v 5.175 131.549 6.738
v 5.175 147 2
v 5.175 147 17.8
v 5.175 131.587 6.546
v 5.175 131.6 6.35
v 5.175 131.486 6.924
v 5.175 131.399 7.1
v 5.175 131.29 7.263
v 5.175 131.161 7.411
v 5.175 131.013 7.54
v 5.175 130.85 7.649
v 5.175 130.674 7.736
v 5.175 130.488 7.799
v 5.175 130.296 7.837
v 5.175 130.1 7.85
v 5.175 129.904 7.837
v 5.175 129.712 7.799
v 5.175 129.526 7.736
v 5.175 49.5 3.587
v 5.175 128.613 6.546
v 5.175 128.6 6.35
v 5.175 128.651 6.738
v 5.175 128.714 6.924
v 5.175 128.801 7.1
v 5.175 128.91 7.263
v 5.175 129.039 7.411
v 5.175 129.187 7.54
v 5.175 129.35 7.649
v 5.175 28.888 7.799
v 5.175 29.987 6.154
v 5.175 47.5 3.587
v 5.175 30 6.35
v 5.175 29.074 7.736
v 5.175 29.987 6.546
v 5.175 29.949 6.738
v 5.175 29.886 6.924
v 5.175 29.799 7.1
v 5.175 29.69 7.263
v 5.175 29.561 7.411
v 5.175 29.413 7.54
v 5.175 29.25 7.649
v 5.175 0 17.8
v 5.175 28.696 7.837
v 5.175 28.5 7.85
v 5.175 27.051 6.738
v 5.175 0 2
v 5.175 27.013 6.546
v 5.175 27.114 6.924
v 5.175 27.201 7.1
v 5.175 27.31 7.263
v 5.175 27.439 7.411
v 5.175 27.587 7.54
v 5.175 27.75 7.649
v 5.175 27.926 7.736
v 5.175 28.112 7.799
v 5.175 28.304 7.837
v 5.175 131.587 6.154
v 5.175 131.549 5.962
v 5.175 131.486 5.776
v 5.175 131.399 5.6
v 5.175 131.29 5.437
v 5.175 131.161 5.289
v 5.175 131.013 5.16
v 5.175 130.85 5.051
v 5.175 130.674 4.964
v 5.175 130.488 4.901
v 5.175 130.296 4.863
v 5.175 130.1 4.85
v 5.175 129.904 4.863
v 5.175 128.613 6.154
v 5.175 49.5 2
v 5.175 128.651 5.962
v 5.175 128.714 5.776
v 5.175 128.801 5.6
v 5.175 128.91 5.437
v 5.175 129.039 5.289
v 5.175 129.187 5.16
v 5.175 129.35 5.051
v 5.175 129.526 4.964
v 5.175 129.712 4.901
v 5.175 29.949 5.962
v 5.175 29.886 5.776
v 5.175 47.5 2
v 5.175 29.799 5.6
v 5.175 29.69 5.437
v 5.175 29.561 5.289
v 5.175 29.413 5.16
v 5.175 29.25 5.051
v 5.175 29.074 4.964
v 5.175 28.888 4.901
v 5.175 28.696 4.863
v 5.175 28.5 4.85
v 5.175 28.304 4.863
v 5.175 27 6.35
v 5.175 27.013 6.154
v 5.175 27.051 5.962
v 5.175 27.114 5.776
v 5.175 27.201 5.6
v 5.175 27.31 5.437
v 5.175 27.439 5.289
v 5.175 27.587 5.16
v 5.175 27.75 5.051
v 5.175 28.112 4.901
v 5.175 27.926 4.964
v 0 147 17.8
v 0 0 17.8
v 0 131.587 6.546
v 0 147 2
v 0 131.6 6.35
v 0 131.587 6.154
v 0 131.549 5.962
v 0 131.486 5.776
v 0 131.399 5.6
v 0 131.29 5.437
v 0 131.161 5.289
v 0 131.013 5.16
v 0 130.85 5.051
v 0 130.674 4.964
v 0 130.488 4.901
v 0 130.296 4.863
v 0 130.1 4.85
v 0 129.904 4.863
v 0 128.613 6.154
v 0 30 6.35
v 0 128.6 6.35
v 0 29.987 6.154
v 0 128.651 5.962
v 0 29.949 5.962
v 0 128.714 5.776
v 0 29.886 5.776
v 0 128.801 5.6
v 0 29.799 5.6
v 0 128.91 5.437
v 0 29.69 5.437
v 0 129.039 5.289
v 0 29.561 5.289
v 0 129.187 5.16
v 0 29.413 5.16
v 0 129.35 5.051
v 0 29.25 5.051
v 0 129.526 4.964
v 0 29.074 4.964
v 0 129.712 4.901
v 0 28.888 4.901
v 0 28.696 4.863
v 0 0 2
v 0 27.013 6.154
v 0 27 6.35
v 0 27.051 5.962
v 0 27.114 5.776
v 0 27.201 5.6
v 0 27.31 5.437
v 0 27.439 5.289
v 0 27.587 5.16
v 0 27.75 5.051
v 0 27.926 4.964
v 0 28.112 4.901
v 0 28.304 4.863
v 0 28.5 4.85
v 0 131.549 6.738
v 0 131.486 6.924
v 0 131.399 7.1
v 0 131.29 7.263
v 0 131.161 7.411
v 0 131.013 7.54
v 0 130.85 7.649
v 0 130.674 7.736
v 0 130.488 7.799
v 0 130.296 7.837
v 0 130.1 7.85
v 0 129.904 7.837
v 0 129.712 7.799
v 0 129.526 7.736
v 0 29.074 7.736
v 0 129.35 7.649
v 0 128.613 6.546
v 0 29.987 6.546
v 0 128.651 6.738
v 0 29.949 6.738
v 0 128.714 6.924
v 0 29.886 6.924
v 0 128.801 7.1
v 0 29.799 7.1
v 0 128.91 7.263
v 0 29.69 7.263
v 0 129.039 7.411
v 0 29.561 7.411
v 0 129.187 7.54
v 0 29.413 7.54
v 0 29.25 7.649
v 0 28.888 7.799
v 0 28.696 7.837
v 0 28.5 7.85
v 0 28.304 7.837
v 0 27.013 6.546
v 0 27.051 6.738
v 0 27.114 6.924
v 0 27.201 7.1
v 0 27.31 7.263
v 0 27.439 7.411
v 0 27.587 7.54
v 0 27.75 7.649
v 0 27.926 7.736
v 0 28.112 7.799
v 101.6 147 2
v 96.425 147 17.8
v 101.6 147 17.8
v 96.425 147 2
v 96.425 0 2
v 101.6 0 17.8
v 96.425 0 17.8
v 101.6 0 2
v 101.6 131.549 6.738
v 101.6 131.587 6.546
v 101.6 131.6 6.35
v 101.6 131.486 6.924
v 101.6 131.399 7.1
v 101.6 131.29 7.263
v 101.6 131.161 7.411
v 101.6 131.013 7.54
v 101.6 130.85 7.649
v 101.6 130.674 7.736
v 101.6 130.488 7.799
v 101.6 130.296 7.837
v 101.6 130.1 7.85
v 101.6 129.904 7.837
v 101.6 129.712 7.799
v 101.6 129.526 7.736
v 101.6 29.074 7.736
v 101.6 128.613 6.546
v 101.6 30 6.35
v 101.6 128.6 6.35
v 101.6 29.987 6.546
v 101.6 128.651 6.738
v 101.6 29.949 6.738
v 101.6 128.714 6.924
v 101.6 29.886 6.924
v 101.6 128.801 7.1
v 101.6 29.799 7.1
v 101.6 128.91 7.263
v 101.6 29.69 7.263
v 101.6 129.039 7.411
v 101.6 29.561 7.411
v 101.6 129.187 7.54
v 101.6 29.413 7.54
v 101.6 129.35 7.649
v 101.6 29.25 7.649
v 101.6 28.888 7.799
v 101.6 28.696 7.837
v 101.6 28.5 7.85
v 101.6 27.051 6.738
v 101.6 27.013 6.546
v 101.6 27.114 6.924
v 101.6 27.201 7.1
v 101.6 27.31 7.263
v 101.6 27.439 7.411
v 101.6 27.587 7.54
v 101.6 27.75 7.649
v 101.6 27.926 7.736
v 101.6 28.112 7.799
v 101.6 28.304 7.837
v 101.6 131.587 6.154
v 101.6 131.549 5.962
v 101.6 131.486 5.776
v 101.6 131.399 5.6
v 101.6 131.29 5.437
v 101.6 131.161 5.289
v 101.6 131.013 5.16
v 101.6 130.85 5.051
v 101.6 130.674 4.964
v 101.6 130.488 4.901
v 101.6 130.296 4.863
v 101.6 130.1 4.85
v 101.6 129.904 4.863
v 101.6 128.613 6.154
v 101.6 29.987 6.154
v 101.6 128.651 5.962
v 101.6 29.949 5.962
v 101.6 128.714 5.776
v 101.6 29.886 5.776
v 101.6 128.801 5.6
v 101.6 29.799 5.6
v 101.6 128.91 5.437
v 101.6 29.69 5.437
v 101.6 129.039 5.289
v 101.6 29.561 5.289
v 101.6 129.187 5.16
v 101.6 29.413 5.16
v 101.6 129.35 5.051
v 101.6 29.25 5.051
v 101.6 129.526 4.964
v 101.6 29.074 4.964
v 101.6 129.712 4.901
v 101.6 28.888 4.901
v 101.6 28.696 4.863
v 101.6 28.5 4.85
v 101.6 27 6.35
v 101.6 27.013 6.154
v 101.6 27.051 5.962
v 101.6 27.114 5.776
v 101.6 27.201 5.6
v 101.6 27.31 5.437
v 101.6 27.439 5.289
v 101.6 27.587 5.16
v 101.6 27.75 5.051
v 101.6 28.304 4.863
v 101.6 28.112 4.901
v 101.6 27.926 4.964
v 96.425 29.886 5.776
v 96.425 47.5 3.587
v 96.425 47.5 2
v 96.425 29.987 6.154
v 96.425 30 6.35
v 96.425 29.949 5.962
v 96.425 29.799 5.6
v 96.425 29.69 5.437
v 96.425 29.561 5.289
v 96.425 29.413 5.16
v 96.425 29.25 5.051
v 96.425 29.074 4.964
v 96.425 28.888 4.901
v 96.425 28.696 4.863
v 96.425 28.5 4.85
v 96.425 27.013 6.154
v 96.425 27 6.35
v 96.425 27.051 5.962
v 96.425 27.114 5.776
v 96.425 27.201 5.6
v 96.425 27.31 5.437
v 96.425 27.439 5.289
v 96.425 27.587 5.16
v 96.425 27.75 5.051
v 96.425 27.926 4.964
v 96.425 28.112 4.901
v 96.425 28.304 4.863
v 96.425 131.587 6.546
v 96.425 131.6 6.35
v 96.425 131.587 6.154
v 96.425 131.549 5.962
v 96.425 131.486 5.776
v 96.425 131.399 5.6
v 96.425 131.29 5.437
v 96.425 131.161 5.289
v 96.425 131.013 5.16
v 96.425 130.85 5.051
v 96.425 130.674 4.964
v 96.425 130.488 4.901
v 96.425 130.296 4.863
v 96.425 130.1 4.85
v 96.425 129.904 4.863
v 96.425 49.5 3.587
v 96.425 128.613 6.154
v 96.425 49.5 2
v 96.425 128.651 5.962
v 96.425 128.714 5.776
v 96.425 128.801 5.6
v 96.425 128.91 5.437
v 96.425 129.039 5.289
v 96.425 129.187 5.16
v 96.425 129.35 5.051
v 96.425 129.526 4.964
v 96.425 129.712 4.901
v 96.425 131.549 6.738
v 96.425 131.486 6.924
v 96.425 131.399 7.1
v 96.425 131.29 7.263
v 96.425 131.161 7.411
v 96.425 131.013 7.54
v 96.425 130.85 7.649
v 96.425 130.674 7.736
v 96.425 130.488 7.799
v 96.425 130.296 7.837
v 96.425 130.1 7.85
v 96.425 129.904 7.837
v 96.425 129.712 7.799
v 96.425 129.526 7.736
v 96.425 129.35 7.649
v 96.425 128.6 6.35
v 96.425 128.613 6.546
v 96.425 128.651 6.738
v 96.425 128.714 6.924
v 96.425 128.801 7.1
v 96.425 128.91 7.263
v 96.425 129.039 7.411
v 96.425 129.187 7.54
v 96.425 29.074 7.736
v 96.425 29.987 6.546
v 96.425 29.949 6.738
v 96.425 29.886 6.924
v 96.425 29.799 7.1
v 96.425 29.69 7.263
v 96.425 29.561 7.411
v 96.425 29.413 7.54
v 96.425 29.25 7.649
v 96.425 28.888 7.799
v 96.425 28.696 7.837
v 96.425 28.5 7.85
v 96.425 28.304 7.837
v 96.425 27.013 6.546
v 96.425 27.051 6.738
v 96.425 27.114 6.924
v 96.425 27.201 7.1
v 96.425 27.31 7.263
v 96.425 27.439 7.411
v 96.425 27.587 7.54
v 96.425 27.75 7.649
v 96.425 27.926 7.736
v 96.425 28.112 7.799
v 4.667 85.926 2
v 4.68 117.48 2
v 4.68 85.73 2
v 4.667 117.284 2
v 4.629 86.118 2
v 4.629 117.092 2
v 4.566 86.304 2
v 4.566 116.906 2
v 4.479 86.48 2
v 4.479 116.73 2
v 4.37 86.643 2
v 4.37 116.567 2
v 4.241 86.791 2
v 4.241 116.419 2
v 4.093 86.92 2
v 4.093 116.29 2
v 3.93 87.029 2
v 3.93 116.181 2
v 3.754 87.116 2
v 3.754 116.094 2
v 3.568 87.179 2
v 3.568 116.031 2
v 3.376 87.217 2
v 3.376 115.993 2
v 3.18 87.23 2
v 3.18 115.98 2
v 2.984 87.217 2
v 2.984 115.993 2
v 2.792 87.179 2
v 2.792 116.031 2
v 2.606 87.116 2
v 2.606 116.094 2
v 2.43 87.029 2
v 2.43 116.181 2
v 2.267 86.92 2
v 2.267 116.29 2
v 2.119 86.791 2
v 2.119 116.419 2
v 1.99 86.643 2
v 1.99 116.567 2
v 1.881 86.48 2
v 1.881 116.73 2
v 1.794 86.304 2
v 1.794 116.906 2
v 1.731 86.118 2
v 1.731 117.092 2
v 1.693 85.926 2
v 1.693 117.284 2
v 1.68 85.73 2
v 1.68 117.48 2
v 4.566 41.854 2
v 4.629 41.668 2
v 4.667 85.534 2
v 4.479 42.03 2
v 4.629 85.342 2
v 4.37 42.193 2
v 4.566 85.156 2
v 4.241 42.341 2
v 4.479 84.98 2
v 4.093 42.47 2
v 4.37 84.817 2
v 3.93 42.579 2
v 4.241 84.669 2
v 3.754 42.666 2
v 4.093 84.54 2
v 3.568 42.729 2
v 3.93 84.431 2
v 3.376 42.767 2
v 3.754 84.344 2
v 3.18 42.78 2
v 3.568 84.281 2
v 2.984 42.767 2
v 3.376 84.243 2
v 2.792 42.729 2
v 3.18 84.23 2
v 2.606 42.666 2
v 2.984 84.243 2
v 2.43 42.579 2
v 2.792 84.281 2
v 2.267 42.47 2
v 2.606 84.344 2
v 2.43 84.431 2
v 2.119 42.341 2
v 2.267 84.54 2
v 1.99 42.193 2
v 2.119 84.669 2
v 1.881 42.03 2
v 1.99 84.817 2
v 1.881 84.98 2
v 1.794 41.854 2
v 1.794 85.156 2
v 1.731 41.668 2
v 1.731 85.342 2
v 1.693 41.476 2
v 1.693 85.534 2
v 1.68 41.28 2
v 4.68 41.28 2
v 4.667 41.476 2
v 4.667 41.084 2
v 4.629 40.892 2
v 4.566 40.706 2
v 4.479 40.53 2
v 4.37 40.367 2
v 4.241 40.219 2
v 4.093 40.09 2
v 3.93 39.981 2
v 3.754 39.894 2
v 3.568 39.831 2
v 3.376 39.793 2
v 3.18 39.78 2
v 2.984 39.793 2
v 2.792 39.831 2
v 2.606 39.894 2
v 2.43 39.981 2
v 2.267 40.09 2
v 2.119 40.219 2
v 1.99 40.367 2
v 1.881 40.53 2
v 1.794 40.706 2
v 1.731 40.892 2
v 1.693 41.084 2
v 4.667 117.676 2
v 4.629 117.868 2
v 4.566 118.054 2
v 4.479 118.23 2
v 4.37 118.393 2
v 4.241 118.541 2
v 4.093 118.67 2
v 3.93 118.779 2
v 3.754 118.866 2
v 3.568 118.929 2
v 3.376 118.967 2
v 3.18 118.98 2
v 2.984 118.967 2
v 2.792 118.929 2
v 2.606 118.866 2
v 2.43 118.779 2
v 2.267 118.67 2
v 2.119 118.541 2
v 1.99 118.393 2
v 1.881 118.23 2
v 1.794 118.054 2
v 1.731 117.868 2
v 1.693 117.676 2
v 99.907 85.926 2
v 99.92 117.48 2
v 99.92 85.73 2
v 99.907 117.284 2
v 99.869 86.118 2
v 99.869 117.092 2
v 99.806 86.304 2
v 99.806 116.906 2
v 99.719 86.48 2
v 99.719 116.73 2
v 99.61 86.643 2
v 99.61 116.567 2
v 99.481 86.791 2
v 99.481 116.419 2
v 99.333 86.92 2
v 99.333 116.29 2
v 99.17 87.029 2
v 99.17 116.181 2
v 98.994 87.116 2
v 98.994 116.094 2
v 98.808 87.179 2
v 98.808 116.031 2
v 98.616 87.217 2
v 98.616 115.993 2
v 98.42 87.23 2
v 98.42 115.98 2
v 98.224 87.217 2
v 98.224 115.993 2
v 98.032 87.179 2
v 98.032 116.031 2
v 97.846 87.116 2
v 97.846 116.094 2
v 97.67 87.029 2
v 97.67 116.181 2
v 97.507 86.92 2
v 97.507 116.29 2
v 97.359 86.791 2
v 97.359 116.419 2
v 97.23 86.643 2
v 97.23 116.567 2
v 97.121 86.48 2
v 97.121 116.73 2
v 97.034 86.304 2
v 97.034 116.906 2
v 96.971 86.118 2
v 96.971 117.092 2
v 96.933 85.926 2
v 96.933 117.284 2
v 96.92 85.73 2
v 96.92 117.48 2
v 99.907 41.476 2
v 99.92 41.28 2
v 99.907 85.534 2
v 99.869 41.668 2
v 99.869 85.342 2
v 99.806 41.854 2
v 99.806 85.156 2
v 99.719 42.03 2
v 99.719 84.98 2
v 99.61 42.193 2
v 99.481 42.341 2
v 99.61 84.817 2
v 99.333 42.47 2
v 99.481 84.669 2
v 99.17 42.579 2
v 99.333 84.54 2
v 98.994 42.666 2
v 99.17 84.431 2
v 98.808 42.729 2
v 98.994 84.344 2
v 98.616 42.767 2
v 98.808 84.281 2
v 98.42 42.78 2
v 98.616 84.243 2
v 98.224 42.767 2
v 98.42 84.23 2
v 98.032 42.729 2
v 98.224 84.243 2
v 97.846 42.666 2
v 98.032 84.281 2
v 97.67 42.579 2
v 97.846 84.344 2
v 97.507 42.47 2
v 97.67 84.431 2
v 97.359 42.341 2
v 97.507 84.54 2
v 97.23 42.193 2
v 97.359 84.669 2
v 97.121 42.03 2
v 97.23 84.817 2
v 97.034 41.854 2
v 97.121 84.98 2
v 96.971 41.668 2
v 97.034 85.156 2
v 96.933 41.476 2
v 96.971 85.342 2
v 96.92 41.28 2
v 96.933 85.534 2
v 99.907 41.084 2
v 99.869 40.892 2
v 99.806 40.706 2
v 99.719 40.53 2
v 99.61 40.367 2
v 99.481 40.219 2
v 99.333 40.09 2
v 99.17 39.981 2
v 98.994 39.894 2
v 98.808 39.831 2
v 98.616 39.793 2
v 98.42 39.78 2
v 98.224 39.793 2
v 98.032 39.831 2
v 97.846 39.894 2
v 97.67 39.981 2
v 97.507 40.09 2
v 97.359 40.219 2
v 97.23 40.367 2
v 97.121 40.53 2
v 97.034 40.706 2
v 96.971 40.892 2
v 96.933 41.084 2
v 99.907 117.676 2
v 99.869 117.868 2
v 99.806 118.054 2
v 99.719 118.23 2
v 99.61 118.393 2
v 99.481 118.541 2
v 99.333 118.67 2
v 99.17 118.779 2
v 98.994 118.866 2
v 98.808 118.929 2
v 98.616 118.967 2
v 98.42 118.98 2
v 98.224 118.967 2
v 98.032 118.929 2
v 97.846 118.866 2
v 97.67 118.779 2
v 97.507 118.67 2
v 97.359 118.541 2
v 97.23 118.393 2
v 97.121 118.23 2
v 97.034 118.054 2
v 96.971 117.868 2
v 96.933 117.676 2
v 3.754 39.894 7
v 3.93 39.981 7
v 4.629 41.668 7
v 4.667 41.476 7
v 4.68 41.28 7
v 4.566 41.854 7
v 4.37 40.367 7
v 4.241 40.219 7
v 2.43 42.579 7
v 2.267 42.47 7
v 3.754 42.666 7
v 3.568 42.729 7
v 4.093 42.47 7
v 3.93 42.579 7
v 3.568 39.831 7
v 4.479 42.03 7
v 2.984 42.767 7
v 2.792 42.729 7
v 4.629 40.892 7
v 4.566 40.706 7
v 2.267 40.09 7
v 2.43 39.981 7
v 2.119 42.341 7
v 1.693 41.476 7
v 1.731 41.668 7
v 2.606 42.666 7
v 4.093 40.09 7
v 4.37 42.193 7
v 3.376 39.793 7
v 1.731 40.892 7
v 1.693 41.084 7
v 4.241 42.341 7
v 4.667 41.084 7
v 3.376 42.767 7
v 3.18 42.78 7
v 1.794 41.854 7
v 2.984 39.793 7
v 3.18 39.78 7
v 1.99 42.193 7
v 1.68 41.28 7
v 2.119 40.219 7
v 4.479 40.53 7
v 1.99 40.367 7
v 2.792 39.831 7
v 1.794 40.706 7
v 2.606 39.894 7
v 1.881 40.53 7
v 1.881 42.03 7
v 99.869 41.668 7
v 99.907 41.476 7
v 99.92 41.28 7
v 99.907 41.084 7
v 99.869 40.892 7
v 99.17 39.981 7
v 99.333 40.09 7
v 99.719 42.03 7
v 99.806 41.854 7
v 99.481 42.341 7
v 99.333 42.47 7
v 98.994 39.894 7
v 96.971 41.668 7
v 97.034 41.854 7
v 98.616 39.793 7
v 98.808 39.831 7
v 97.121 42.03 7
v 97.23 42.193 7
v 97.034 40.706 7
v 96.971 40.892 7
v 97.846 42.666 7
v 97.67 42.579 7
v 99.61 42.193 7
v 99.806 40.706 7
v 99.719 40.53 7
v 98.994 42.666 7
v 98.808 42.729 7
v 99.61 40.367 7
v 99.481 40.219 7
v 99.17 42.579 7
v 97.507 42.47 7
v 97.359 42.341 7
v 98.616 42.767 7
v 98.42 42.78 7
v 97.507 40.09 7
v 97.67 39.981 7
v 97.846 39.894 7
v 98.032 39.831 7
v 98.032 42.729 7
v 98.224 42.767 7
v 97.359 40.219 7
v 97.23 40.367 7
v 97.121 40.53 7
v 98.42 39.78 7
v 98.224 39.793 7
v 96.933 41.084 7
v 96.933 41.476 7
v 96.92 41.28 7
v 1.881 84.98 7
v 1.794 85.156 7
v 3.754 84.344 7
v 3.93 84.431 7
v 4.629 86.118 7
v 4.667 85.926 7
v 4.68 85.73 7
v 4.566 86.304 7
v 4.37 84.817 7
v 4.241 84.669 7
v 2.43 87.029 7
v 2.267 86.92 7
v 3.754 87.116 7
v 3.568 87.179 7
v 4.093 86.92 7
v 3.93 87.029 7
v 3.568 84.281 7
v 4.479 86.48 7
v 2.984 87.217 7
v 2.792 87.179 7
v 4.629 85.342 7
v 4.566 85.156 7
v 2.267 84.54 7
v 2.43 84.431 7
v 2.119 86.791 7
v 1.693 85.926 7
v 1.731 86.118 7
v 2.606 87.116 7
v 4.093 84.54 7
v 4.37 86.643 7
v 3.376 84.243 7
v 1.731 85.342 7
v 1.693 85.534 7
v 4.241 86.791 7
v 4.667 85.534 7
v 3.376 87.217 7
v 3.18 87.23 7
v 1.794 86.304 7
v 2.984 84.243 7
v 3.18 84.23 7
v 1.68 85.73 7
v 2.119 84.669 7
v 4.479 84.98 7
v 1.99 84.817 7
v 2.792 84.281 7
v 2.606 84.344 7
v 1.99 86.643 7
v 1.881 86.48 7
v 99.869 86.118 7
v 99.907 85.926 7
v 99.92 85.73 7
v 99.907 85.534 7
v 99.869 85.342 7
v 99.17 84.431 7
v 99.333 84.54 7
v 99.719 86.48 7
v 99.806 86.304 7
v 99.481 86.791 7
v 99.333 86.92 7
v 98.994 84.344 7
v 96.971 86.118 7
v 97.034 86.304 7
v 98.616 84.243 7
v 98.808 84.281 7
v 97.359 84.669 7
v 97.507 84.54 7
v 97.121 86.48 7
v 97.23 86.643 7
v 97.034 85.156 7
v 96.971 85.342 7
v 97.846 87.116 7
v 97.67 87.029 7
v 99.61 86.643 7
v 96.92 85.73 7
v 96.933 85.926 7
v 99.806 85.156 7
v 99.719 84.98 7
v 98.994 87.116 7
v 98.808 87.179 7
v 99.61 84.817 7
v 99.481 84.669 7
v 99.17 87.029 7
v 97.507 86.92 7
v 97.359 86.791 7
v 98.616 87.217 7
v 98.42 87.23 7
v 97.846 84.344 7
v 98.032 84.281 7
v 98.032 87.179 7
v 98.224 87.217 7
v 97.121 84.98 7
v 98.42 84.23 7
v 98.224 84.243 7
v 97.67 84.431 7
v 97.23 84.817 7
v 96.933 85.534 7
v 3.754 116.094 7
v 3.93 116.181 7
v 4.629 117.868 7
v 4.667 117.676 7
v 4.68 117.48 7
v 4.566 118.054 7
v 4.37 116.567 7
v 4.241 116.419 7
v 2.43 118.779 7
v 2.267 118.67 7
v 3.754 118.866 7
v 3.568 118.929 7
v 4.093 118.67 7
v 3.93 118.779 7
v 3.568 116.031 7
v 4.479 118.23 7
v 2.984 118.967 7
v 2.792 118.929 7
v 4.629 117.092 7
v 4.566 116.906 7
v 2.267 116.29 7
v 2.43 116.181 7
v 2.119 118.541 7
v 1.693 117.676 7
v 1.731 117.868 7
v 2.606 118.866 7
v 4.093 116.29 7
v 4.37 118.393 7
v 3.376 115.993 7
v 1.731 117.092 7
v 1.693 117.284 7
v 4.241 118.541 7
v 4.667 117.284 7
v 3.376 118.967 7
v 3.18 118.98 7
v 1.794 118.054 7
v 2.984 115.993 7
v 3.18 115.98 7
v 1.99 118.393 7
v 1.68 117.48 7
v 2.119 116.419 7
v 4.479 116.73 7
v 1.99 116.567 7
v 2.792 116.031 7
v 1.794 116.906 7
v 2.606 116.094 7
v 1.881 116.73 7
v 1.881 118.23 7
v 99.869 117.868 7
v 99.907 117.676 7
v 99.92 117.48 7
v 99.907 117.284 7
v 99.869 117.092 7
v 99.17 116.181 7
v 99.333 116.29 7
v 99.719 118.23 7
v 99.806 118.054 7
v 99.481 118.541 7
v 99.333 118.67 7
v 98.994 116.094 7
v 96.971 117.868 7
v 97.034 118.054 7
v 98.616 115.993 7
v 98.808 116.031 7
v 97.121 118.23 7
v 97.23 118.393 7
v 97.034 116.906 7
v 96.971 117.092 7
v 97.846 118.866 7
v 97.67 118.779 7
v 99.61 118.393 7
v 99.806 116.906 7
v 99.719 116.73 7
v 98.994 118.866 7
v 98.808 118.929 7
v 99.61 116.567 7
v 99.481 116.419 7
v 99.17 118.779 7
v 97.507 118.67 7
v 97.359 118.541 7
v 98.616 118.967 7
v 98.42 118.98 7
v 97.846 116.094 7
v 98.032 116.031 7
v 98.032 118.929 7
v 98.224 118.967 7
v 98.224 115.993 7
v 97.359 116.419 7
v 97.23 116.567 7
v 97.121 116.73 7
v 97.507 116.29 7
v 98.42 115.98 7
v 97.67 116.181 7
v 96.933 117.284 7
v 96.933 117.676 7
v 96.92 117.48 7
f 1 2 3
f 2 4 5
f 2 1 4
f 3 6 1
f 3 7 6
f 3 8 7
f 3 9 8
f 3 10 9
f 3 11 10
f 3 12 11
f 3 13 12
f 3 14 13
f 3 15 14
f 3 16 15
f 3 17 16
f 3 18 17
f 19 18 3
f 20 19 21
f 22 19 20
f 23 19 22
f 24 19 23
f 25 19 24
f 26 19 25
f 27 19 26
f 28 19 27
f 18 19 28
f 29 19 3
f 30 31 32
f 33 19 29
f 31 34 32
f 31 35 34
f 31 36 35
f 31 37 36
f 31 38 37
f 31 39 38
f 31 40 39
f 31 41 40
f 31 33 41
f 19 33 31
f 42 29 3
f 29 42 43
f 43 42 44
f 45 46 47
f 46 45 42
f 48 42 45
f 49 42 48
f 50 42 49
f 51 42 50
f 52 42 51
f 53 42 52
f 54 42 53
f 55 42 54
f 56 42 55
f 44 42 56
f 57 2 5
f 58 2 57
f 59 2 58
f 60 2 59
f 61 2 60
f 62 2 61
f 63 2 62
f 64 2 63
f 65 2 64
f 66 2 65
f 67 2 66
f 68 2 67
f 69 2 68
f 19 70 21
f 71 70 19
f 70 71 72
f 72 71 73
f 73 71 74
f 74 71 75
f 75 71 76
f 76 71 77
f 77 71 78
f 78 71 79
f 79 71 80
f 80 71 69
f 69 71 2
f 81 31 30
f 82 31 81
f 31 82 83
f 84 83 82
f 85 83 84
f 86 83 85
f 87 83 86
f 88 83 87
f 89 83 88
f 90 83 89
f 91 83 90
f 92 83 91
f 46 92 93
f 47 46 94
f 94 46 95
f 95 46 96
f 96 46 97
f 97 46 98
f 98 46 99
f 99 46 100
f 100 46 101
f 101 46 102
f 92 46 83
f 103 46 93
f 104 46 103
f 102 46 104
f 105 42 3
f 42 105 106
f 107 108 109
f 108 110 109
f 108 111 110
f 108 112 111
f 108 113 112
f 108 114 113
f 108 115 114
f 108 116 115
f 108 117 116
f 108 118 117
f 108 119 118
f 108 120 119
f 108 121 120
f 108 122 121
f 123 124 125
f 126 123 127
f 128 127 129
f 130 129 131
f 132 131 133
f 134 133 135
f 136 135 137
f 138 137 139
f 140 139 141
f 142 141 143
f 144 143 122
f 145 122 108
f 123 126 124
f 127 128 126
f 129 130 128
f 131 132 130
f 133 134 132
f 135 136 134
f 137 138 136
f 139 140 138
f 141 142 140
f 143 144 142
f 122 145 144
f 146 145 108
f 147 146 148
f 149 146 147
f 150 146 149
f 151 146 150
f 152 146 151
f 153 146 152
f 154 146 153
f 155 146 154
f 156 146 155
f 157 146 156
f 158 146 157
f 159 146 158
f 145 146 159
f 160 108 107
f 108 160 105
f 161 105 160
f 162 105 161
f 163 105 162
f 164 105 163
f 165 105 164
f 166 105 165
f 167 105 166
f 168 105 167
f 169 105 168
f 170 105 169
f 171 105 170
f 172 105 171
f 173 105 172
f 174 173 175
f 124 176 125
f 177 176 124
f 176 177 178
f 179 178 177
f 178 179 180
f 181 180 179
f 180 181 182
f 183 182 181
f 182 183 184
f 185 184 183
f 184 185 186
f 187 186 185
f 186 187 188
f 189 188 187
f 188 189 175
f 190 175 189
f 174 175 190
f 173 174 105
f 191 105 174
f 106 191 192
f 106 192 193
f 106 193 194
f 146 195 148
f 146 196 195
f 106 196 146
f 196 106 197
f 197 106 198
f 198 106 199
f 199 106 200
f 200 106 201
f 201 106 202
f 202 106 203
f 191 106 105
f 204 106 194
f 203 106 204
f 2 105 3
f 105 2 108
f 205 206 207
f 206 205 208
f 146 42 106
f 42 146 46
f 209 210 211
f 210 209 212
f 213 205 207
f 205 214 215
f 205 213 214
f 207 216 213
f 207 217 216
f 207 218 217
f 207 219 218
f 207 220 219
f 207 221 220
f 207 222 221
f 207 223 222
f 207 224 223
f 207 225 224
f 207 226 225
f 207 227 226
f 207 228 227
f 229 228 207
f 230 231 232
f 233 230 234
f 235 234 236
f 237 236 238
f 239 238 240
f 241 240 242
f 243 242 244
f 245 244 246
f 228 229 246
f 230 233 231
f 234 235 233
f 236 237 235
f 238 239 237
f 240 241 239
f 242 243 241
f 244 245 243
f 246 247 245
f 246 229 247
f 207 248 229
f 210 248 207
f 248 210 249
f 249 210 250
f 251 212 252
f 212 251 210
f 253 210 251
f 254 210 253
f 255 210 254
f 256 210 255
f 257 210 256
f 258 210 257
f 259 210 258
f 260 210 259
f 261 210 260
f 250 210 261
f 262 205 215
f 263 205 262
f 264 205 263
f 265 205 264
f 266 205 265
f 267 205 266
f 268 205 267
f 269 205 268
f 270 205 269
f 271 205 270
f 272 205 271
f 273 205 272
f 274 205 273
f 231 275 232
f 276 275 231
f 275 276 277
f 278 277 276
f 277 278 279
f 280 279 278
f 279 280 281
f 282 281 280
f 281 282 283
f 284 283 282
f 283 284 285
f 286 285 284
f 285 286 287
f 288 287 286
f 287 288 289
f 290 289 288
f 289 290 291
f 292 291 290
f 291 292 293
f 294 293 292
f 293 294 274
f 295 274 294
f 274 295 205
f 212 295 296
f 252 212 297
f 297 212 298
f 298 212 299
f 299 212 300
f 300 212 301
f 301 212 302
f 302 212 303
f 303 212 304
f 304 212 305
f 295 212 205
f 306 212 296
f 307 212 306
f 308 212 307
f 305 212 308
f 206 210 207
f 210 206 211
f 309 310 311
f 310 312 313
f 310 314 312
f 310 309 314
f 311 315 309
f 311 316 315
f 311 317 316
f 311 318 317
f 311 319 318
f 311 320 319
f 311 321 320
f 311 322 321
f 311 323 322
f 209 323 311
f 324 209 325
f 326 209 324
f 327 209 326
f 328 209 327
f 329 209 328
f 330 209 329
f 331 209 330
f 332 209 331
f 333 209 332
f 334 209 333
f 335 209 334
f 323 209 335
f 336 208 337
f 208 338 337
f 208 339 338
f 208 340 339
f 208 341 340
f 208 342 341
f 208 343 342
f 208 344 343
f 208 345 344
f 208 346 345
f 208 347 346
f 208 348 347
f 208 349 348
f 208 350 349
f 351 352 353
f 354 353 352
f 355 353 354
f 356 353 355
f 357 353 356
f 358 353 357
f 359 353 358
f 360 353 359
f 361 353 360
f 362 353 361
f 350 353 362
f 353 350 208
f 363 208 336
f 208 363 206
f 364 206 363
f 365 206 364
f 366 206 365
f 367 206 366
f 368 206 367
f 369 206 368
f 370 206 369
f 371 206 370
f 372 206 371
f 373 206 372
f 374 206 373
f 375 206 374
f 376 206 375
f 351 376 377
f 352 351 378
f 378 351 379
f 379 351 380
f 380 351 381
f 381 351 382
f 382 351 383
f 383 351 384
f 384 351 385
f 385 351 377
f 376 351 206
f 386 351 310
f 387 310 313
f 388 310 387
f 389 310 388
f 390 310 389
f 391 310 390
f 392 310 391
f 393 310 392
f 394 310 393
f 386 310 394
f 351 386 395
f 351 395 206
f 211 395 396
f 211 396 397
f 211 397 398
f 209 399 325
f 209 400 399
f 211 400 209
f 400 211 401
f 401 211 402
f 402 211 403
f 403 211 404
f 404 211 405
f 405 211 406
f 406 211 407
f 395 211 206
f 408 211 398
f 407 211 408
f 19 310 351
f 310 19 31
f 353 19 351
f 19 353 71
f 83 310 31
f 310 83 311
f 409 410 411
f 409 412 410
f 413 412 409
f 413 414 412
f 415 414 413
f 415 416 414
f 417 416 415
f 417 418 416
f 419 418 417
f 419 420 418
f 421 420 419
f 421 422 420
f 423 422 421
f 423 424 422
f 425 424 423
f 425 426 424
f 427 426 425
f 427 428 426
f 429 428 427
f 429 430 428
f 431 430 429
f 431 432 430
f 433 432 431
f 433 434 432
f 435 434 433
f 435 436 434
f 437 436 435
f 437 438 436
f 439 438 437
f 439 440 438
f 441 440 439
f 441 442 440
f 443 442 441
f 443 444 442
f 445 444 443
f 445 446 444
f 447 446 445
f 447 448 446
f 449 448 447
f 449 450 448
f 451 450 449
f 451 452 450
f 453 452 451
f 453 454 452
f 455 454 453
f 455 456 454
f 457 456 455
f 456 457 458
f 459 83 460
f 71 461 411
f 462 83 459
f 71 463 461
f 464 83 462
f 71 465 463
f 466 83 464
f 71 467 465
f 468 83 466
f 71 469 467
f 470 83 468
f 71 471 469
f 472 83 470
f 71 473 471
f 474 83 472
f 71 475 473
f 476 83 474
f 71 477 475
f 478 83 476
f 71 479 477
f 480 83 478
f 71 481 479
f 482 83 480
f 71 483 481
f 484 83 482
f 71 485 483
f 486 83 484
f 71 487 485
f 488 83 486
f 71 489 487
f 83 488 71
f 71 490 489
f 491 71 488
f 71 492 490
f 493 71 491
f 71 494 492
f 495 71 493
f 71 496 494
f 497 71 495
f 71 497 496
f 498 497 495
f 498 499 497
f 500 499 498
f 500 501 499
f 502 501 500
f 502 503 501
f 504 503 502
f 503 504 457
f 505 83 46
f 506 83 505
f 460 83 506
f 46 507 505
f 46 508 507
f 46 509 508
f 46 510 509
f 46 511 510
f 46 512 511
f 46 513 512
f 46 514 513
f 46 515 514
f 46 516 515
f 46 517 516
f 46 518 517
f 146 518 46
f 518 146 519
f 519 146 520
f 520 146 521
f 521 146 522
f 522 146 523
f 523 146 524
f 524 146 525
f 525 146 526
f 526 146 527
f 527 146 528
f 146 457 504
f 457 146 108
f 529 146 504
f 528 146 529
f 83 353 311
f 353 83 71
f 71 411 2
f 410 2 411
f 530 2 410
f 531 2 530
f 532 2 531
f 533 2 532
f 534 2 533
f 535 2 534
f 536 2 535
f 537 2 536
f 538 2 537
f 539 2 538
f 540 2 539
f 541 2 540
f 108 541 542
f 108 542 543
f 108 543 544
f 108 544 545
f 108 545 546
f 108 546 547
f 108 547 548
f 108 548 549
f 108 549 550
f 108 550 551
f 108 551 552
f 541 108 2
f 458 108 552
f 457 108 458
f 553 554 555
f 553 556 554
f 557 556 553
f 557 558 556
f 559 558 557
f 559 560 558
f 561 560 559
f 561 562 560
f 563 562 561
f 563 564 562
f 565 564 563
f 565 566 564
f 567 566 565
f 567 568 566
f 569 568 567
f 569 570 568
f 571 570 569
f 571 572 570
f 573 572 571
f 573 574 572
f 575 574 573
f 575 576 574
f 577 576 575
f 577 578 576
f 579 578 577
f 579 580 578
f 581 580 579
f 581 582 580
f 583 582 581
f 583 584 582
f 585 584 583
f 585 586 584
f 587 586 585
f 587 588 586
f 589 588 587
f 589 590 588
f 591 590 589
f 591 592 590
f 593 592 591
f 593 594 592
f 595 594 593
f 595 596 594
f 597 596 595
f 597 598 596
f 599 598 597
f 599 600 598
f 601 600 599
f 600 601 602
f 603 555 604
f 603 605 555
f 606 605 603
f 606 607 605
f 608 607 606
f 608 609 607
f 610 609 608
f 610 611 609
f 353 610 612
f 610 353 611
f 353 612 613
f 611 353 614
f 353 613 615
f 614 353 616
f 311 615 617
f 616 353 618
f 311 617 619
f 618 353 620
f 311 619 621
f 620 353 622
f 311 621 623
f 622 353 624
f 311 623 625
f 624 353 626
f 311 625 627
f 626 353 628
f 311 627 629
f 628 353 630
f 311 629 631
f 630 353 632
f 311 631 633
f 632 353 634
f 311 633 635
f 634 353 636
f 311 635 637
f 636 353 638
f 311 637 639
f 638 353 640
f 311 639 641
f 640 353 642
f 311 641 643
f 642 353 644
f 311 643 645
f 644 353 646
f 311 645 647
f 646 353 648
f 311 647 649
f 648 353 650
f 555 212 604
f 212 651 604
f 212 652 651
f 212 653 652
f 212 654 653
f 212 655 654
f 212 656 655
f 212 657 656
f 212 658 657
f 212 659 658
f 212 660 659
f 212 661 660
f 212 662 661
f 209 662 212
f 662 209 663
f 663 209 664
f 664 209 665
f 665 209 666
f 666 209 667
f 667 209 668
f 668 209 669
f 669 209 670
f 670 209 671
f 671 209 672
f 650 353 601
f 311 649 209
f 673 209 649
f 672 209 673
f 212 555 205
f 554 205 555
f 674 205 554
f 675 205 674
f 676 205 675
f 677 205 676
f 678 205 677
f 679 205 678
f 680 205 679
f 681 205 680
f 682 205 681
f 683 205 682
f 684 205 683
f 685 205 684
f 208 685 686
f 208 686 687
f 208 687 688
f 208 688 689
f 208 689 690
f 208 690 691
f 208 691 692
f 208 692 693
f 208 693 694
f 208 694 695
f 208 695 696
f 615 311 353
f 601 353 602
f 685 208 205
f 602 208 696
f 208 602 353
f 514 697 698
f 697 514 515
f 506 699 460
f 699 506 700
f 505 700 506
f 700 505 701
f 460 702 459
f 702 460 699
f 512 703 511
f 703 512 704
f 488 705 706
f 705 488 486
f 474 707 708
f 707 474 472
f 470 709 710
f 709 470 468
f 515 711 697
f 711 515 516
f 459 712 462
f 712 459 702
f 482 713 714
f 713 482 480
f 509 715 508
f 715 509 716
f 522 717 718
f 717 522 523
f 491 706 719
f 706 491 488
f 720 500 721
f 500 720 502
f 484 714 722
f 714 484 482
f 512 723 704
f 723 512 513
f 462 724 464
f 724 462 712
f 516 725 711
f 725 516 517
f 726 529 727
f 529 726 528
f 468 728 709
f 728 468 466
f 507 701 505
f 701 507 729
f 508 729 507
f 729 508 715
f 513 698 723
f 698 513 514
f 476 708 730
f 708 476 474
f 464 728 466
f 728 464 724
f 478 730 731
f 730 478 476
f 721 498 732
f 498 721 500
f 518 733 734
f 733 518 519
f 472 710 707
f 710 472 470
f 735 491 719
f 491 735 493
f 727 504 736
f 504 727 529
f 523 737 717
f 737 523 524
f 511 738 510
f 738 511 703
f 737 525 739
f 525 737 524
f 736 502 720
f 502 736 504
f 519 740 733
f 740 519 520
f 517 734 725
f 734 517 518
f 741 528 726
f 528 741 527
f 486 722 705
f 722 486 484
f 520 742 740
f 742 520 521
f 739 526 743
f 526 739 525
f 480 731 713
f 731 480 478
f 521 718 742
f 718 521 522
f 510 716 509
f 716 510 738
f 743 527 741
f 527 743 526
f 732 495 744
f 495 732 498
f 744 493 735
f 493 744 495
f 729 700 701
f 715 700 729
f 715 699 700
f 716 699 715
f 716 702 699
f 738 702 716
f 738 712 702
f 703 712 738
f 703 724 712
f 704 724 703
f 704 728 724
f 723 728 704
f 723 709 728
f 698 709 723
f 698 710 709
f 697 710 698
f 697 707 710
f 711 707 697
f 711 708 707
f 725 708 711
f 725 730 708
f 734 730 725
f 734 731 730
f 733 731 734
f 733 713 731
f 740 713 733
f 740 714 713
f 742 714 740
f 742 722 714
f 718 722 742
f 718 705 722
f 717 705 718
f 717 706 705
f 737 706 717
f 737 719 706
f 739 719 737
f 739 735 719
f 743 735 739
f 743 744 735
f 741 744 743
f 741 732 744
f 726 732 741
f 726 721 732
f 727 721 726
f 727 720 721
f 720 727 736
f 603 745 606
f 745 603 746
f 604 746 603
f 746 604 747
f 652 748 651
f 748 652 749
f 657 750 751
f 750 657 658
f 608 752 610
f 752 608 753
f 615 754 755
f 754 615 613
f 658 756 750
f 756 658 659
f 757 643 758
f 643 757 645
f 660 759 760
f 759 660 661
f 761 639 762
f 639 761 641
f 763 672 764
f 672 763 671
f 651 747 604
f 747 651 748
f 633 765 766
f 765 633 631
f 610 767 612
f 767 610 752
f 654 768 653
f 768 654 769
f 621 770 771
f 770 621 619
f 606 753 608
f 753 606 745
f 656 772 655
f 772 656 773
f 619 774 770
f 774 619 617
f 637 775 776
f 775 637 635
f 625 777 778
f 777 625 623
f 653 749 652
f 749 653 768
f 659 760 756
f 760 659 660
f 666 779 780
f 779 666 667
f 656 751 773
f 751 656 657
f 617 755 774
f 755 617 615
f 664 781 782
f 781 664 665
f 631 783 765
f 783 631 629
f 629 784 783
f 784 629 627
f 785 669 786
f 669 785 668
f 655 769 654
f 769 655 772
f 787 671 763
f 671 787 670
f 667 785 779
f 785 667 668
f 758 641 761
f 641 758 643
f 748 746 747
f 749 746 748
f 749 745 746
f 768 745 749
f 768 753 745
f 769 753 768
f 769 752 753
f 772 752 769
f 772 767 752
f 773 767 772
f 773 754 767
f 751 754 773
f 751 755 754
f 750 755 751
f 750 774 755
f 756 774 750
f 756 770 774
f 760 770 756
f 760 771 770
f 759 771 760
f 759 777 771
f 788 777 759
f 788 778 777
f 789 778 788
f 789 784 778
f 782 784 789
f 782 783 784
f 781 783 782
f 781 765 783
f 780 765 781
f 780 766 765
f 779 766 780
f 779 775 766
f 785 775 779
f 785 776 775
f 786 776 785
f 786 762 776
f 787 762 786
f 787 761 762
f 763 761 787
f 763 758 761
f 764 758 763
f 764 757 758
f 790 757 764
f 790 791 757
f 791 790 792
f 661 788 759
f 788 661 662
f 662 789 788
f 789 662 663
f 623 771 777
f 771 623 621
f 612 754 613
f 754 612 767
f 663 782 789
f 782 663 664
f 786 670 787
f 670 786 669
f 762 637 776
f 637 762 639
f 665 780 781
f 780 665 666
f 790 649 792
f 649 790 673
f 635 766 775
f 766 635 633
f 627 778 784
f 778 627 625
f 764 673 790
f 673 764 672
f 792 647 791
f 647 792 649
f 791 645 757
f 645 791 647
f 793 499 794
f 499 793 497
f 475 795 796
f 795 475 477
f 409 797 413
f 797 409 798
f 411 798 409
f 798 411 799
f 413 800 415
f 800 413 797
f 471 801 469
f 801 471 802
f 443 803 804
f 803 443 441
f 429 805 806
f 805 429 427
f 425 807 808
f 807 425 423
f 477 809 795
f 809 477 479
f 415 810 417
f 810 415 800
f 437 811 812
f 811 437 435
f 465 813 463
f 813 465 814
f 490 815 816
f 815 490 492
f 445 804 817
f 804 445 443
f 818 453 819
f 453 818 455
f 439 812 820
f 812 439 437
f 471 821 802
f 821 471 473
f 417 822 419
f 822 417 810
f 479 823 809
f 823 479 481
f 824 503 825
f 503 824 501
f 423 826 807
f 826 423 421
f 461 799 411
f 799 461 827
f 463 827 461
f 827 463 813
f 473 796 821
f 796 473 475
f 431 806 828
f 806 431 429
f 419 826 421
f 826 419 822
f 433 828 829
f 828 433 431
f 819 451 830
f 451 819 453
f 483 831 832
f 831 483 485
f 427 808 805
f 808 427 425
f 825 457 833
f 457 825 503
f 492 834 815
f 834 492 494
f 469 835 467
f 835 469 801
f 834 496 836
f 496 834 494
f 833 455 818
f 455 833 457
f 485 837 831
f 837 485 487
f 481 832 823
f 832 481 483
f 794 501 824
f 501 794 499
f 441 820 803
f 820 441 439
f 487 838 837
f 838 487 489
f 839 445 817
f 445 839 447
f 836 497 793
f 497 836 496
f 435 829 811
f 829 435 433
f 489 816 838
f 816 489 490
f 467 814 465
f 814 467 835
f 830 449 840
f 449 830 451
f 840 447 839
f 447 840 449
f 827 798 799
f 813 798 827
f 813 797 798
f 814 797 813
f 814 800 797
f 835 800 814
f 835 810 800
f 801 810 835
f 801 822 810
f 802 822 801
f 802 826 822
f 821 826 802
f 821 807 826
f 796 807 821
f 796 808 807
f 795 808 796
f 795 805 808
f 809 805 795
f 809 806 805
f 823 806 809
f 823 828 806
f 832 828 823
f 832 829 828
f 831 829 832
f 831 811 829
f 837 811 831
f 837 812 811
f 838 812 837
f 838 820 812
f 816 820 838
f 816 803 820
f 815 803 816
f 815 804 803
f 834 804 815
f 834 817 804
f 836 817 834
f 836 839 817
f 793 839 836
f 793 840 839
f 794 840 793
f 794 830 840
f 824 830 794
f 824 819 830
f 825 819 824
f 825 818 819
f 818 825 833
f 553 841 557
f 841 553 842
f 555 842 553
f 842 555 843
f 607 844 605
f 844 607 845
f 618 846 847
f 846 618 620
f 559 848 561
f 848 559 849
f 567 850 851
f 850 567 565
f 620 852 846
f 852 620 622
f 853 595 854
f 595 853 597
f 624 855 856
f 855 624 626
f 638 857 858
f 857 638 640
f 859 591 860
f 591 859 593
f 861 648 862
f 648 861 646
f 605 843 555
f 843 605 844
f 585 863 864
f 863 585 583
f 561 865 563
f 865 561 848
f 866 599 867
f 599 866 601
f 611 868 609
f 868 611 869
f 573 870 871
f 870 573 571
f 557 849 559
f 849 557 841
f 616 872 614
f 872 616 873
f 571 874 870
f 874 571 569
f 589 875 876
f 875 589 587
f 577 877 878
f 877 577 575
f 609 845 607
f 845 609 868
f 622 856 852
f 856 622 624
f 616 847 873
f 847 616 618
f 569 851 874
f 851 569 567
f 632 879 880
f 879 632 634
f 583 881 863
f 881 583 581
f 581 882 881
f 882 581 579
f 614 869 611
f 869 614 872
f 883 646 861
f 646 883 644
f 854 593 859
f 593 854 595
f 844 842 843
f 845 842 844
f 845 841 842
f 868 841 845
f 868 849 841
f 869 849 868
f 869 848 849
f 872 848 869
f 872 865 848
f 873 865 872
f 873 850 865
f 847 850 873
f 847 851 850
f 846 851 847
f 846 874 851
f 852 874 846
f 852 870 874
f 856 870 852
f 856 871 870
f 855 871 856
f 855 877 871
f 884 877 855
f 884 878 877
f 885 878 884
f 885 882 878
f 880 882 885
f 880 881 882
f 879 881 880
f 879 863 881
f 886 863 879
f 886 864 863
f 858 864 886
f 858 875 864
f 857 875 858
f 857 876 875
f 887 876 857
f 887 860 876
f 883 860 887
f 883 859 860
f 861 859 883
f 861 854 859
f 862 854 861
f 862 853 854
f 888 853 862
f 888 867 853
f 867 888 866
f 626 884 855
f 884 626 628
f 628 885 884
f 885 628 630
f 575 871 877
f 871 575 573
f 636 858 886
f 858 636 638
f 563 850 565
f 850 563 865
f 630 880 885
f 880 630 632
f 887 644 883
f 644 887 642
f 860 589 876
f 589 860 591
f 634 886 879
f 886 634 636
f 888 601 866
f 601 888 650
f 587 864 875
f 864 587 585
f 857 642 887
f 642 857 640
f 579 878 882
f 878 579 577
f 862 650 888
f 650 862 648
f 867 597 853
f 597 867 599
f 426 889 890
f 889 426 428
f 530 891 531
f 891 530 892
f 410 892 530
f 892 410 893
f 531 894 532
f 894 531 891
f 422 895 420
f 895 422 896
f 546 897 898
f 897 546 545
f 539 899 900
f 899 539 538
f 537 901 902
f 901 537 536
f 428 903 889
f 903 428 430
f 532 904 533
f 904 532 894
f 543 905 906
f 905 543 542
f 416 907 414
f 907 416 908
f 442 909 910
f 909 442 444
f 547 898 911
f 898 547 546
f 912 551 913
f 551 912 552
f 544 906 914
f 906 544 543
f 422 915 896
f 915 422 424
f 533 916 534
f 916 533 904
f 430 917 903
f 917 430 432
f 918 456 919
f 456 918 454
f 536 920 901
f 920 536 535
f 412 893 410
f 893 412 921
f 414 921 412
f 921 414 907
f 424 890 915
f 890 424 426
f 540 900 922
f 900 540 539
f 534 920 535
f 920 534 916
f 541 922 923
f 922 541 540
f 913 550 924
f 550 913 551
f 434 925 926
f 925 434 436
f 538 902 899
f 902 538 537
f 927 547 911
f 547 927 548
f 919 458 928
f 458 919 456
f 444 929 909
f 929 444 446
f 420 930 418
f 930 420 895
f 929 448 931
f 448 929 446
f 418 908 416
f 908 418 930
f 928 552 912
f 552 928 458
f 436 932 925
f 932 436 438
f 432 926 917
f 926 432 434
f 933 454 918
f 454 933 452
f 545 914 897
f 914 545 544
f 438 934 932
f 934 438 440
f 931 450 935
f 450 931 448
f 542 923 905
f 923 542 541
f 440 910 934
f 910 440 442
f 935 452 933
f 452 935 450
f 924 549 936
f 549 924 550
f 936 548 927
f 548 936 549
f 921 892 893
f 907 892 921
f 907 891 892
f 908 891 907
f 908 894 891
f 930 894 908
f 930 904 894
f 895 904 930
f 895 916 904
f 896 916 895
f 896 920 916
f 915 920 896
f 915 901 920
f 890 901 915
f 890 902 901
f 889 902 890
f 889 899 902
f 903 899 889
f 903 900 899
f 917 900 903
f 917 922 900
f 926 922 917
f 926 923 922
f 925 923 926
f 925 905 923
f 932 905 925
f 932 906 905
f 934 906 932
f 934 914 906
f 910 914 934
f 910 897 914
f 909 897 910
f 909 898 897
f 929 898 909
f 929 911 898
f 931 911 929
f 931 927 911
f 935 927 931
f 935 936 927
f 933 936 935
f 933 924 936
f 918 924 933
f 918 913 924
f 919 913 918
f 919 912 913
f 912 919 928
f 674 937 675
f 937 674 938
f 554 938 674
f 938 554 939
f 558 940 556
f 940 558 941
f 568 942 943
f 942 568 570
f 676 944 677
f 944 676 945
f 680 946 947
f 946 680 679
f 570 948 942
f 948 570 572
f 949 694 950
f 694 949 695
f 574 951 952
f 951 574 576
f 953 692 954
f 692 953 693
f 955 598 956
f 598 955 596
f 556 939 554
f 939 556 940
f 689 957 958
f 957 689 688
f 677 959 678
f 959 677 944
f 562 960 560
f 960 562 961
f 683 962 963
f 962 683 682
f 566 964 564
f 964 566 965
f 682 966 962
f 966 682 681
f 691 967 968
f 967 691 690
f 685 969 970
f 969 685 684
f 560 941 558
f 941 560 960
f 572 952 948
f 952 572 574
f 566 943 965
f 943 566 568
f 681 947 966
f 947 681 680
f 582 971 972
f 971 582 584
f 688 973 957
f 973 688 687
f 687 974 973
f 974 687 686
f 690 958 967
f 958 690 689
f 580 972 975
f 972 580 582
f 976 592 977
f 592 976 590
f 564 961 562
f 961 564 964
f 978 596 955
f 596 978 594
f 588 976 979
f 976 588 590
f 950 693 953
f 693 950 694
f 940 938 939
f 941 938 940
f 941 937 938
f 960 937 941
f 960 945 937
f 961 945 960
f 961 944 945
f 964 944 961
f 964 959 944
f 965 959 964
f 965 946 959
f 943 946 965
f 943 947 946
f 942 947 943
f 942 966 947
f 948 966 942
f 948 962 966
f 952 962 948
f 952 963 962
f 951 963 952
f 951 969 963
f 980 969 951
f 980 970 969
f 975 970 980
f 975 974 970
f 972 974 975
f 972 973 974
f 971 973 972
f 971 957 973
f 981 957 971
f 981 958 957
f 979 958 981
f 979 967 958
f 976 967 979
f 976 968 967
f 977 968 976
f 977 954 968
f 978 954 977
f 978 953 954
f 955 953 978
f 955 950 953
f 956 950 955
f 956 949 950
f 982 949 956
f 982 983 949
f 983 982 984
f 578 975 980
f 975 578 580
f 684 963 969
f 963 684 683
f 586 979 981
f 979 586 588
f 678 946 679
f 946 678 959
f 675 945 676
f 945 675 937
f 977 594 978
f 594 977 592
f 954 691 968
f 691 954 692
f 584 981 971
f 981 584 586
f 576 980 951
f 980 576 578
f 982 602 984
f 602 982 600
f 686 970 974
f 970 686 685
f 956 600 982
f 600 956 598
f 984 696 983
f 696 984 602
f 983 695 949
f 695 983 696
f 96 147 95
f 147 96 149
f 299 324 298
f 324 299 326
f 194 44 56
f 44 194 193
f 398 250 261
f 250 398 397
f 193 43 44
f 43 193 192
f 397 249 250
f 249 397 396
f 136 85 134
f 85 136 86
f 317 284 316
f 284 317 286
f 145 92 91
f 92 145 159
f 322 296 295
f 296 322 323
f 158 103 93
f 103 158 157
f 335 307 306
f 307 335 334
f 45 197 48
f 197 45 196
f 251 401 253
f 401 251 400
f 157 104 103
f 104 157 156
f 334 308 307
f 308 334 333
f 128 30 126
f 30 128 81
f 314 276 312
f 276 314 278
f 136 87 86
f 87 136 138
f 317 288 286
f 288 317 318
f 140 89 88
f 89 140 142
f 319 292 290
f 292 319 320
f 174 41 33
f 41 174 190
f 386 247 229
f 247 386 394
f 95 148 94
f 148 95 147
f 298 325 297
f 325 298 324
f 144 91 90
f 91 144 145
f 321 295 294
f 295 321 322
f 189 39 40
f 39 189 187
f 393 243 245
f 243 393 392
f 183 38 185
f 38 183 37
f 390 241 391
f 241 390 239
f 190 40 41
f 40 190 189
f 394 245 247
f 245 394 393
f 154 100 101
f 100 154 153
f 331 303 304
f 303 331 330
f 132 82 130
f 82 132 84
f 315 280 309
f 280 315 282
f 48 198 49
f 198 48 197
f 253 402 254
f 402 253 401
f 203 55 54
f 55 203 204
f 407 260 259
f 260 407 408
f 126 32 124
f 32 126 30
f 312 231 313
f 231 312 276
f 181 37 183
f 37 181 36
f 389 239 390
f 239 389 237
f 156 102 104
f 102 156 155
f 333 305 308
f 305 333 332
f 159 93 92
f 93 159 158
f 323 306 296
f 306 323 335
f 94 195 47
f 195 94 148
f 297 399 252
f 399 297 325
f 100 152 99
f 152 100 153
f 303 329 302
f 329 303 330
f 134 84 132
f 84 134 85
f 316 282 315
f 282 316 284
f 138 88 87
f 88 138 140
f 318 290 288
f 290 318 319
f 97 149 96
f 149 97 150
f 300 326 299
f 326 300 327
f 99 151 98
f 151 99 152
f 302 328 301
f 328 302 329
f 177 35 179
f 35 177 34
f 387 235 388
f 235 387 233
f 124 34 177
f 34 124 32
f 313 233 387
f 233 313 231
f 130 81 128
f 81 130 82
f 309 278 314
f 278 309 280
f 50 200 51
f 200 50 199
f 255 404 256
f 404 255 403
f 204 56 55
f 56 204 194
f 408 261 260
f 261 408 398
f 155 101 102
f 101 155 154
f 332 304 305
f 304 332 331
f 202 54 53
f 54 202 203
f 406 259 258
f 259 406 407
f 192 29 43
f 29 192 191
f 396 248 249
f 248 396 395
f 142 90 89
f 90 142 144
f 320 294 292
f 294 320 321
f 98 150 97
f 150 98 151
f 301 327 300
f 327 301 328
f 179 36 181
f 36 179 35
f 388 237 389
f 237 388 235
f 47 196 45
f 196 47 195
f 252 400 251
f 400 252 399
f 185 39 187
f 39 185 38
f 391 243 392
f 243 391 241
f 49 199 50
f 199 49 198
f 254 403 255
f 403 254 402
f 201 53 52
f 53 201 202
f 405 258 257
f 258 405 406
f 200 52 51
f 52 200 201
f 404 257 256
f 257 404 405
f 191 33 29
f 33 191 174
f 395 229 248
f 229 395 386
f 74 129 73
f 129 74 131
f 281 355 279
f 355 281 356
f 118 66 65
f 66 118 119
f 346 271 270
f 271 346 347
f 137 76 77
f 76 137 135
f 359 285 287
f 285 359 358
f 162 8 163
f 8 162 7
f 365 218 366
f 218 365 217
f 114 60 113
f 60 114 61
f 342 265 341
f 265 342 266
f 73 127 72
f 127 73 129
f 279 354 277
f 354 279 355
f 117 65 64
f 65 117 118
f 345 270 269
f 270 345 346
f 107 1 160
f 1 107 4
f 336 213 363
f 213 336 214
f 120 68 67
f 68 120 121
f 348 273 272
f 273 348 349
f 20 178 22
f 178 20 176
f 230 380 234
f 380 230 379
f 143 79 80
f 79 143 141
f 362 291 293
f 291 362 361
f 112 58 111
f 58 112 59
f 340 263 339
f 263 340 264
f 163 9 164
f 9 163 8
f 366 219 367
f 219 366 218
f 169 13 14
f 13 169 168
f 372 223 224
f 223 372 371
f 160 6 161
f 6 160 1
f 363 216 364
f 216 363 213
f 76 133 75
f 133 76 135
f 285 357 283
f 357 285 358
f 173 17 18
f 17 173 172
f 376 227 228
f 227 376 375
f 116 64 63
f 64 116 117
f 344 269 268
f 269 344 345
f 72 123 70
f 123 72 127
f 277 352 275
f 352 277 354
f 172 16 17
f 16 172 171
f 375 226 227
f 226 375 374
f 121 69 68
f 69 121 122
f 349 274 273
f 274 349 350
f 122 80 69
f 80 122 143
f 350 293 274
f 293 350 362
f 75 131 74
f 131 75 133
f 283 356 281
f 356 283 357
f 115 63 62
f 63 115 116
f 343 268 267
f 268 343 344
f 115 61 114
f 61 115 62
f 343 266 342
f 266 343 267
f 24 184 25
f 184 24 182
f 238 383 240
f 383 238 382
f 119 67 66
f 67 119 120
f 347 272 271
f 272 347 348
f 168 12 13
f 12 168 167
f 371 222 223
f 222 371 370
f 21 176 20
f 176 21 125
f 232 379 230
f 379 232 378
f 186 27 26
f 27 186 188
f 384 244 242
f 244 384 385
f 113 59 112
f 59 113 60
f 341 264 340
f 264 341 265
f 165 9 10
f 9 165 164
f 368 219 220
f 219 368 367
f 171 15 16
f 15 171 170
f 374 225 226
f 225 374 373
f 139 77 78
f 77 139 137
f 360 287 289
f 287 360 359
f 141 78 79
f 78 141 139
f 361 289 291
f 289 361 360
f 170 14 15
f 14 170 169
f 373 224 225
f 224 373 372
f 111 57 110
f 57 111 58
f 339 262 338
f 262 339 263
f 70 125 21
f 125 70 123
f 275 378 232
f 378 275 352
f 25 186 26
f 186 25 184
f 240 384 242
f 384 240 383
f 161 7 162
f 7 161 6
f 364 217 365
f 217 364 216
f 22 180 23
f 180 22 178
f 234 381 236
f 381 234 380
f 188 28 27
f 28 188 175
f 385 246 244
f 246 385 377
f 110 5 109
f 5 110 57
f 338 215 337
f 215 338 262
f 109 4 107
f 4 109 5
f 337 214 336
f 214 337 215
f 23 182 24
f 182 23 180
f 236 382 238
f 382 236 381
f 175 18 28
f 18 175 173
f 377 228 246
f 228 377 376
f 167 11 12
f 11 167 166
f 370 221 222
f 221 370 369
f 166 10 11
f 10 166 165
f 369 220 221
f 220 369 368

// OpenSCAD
$fn=48;

// WD HDD Dimmensions
// https://support.wdc.com/images/kb/2579-771970-A03.pdf
A1=17.8; // Height Min
A2=147;  // Length Max
A3=101.6;// Width

// Bottom Side
A5=3.18; // Bottom Screw Inset
A7=41.28;// First Mount
A6=44.45;// Second Mount Offset from first
A13=76.2;// Third Mount Offset from first

// Walls
A10=6.35; // Screw rise
A8=28.50; // First Mount
A9=101.60; // Second Mount

pcb_thickness=1.5875; // 1/16th of an in

brace_thick=2;
brace_spacing=48.5-brace_thick/2;

difference()
{
    union()
    {
difference(){
        union()
        {
            cube([5.175,A2,A1]);
            translate([A3-5.175,0,0])cube([5.175,A2,A1]);
            translate([0,brace_spacing,pcb_thickness])cube([A3,brace_thick,brace_thick]);
        }
        cube([A3,A2,2]);}
    }

translate([A5,A7,-1])cylinder(8,1.5,1.5);
translate([A3-A5,A7,-1])cylinder(8,1.5,1.5);
    
translate([A5,A7+A6,-1])cylinder(8,1.5,1.5);
translate([A3-A5,A7+A6,-1])cylinder(8,1.5,1.5);
    
translate([A5,A7+A13,-1])cylinder(8,1.5,1.5);
translate([A3-A5,A7+A13,-1])cylinder(8,1.5,1.5);
    
    
translate([-1,A8,A10])rotate([0,90,0])cylinder(800,1.5,1.5);
translate([-1,A8+A9,A10])rotate([0,90,0])cylinder(800,1.5,1.5);
}
